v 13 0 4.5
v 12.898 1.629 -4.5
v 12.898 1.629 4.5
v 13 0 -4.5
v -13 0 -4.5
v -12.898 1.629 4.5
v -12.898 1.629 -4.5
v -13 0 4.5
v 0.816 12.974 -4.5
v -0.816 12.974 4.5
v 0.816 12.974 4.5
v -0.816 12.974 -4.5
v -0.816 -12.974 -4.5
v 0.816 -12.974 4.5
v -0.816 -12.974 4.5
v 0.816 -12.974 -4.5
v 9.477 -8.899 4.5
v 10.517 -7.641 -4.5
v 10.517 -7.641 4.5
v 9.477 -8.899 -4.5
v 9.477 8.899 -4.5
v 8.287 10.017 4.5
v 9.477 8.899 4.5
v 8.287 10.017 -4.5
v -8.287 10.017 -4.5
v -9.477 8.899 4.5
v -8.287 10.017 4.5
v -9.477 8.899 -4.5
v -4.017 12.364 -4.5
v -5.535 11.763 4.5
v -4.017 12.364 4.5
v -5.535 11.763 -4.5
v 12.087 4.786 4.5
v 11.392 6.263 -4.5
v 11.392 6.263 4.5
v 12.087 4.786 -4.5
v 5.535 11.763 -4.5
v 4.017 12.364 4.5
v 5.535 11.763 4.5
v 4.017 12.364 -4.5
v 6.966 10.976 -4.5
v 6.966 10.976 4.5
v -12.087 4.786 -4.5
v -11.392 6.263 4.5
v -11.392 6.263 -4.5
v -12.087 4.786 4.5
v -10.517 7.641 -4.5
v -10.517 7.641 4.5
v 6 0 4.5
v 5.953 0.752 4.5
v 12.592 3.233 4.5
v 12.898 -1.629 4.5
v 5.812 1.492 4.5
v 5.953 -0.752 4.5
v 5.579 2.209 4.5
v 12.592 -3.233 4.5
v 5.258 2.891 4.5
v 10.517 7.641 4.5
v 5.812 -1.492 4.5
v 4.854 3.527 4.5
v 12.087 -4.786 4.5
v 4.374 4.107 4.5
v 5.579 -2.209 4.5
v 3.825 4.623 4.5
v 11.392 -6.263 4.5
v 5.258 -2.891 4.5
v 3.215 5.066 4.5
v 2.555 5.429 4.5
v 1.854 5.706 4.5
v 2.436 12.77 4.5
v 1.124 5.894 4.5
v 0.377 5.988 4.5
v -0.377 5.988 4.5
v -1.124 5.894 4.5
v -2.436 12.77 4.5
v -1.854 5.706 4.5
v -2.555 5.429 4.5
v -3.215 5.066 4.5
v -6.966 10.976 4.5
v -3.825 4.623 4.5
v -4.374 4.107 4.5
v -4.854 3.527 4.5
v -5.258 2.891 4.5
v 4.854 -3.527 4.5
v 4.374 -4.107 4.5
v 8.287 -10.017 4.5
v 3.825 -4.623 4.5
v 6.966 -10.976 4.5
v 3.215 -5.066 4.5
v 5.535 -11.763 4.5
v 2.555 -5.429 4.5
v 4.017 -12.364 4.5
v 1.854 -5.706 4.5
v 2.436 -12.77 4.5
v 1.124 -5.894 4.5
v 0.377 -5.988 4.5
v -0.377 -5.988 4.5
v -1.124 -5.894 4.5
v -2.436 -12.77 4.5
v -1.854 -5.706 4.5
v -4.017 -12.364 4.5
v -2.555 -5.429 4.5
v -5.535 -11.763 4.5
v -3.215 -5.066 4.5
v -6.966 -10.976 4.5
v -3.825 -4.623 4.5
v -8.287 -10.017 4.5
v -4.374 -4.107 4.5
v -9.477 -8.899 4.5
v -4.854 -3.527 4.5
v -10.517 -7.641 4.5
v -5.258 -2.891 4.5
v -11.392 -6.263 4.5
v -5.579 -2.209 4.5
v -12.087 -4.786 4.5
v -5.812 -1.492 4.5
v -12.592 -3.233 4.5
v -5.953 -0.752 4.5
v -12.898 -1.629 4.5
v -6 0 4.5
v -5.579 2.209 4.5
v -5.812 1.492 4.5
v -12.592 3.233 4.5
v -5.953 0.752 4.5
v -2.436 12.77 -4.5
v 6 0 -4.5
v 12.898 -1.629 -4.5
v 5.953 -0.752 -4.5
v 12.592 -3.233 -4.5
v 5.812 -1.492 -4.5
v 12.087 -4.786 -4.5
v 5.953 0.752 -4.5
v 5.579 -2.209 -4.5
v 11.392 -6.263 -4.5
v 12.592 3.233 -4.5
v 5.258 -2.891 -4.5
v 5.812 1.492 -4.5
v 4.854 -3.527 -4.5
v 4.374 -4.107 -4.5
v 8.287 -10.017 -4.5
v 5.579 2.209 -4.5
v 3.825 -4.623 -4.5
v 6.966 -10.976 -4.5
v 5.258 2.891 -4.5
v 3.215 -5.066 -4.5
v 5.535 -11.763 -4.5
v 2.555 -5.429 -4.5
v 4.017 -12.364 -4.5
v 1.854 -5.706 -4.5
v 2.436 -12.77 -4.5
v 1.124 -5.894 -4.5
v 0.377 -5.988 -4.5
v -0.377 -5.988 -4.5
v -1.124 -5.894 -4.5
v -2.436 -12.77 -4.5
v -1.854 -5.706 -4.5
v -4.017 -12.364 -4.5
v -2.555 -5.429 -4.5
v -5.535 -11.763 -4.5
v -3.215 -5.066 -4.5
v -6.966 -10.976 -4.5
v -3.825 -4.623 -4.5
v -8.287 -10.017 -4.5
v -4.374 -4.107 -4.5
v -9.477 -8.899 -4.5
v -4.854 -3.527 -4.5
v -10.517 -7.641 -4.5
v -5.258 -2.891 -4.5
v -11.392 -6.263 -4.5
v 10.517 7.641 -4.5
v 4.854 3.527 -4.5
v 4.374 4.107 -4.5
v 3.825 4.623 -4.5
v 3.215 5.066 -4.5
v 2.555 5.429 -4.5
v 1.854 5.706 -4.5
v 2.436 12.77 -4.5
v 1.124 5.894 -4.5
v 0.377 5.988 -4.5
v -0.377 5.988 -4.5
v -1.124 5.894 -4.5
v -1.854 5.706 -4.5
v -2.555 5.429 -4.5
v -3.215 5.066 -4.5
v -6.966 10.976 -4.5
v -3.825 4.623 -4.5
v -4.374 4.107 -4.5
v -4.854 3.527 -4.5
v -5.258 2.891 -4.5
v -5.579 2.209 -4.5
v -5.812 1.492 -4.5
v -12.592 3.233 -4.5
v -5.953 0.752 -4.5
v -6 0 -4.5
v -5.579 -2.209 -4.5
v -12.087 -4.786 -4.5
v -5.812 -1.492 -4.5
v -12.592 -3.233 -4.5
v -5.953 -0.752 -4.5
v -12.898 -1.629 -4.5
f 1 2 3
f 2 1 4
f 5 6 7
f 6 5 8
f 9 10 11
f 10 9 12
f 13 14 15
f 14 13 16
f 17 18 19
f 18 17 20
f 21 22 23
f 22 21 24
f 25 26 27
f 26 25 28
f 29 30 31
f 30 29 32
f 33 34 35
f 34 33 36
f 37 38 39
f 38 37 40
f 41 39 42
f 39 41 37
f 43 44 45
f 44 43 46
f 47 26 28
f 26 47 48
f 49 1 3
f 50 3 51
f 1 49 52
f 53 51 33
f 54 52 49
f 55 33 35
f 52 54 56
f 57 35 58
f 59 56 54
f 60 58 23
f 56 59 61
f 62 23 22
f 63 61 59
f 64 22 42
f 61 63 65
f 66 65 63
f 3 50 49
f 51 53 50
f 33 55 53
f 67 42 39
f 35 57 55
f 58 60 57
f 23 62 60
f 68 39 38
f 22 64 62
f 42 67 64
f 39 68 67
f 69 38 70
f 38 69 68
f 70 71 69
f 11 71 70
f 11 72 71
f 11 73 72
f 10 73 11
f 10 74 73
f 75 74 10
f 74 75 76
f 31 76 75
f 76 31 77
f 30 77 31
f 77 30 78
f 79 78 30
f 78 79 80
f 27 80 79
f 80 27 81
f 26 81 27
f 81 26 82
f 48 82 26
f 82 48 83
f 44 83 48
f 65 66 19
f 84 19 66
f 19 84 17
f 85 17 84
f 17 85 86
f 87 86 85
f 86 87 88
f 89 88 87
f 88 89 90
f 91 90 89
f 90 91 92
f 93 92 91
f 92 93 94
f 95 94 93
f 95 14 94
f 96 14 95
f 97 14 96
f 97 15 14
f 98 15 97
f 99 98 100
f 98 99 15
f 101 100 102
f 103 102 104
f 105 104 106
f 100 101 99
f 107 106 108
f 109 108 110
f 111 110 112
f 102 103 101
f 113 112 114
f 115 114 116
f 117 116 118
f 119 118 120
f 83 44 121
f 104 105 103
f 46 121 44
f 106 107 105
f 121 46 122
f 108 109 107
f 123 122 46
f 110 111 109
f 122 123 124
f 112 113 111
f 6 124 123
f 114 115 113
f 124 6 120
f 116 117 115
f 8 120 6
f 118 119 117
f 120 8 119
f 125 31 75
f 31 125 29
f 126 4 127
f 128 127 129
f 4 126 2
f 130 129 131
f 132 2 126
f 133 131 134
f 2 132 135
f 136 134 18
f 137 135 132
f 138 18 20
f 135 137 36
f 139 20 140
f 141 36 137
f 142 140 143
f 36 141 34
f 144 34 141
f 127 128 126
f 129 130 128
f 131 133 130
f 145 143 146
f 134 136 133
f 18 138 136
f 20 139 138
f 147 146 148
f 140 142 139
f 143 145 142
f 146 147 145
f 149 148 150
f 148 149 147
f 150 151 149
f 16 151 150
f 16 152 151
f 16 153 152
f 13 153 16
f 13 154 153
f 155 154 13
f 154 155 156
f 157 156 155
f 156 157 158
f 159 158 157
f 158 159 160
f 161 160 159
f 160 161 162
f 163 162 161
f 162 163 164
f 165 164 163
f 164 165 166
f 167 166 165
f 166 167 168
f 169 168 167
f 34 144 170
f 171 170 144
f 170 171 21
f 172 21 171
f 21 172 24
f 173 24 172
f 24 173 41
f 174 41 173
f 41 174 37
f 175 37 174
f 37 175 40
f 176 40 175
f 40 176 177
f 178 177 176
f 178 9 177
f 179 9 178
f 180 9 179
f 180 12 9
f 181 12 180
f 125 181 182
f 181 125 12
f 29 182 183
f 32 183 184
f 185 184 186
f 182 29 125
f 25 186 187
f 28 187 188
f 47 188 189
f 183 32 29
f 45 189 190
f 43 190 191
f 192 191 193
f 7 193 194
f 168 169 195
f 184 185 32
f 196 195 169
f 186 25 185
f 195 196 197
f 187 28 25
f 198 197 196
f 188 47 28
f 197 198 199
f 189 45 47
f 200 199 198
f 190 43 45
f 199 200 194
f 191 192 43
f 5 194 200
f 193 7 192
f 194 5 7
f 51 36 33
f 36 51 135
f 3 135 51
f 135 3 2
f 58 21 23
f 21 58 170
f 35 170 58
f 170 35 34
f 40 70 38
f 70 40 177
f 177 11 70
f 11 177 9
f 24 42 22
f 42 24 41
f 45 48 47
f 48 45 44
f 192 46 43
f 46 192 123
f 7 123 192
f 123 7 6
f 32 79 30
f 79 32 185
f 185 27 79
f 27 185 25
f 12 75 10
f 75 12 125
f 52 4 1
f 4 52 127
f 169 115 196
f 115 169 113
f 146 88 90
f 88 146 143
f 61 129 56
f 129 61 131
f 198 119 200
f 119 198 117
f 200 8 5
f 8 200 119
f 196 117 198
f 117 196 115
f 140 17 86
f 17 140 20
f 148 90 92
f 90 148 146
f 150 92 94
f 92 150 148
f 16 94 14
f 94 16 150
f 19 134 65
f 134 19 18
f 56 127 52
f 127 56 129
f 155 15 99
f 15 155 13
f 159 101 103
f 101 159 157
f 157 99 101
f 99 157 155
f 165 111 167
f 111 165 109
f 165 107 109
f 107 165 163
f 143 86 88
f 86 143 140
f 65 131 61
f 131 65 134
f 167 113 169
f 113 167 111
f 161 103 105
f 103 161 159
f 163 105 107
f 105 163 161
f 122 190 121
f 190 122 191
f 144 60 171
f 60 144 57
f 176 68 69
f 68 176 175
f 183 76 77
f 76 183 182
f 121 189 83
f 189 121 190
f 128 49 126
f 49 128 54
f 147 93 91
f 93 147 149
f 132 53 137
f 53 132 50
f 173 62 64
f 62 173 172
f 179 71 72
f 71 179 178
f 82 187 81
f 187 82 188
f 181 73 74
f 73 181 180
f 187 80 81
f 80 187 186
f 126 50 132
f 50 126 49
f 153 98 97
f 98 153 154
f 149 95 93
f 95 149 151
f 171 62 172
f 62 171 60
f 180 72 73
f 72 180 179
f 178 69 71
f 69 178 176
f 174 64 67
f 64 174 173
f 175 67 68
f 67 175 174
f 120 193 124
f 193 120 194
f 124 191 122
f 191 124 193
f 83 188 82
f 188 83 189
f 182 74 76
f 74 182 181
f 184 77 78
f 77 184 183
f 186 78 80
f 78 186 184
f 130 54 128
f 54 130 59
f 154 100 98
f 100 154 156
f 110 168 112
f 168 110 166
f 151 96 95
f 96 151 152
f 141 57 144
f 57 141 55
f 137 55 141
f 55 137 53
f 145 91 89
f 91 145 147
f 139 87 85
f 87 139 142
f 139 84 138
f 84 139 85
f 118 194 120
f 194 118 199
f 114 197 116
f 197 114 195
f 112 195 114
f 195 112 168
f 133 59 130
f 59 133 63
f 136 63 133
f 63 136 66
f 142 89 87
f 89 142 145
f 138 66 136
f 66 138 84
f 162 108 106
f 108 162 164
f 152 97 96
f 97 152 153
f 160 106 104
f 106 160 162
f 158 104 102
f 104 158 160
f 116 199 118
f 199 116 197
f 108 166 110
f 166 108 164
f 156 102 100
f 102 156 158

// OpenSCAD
$fn = 50;


difference() {
	union() {
		translate(v = [0, 0, -4.5000000000]) {
			cylinder(h = 9, r = 13.0000000000);
		}
	}
	union() {
		translate(v = [0, 0, -100.0000000000]) {
			cylinder(h = 200, r = 6);
		}
	}
}
